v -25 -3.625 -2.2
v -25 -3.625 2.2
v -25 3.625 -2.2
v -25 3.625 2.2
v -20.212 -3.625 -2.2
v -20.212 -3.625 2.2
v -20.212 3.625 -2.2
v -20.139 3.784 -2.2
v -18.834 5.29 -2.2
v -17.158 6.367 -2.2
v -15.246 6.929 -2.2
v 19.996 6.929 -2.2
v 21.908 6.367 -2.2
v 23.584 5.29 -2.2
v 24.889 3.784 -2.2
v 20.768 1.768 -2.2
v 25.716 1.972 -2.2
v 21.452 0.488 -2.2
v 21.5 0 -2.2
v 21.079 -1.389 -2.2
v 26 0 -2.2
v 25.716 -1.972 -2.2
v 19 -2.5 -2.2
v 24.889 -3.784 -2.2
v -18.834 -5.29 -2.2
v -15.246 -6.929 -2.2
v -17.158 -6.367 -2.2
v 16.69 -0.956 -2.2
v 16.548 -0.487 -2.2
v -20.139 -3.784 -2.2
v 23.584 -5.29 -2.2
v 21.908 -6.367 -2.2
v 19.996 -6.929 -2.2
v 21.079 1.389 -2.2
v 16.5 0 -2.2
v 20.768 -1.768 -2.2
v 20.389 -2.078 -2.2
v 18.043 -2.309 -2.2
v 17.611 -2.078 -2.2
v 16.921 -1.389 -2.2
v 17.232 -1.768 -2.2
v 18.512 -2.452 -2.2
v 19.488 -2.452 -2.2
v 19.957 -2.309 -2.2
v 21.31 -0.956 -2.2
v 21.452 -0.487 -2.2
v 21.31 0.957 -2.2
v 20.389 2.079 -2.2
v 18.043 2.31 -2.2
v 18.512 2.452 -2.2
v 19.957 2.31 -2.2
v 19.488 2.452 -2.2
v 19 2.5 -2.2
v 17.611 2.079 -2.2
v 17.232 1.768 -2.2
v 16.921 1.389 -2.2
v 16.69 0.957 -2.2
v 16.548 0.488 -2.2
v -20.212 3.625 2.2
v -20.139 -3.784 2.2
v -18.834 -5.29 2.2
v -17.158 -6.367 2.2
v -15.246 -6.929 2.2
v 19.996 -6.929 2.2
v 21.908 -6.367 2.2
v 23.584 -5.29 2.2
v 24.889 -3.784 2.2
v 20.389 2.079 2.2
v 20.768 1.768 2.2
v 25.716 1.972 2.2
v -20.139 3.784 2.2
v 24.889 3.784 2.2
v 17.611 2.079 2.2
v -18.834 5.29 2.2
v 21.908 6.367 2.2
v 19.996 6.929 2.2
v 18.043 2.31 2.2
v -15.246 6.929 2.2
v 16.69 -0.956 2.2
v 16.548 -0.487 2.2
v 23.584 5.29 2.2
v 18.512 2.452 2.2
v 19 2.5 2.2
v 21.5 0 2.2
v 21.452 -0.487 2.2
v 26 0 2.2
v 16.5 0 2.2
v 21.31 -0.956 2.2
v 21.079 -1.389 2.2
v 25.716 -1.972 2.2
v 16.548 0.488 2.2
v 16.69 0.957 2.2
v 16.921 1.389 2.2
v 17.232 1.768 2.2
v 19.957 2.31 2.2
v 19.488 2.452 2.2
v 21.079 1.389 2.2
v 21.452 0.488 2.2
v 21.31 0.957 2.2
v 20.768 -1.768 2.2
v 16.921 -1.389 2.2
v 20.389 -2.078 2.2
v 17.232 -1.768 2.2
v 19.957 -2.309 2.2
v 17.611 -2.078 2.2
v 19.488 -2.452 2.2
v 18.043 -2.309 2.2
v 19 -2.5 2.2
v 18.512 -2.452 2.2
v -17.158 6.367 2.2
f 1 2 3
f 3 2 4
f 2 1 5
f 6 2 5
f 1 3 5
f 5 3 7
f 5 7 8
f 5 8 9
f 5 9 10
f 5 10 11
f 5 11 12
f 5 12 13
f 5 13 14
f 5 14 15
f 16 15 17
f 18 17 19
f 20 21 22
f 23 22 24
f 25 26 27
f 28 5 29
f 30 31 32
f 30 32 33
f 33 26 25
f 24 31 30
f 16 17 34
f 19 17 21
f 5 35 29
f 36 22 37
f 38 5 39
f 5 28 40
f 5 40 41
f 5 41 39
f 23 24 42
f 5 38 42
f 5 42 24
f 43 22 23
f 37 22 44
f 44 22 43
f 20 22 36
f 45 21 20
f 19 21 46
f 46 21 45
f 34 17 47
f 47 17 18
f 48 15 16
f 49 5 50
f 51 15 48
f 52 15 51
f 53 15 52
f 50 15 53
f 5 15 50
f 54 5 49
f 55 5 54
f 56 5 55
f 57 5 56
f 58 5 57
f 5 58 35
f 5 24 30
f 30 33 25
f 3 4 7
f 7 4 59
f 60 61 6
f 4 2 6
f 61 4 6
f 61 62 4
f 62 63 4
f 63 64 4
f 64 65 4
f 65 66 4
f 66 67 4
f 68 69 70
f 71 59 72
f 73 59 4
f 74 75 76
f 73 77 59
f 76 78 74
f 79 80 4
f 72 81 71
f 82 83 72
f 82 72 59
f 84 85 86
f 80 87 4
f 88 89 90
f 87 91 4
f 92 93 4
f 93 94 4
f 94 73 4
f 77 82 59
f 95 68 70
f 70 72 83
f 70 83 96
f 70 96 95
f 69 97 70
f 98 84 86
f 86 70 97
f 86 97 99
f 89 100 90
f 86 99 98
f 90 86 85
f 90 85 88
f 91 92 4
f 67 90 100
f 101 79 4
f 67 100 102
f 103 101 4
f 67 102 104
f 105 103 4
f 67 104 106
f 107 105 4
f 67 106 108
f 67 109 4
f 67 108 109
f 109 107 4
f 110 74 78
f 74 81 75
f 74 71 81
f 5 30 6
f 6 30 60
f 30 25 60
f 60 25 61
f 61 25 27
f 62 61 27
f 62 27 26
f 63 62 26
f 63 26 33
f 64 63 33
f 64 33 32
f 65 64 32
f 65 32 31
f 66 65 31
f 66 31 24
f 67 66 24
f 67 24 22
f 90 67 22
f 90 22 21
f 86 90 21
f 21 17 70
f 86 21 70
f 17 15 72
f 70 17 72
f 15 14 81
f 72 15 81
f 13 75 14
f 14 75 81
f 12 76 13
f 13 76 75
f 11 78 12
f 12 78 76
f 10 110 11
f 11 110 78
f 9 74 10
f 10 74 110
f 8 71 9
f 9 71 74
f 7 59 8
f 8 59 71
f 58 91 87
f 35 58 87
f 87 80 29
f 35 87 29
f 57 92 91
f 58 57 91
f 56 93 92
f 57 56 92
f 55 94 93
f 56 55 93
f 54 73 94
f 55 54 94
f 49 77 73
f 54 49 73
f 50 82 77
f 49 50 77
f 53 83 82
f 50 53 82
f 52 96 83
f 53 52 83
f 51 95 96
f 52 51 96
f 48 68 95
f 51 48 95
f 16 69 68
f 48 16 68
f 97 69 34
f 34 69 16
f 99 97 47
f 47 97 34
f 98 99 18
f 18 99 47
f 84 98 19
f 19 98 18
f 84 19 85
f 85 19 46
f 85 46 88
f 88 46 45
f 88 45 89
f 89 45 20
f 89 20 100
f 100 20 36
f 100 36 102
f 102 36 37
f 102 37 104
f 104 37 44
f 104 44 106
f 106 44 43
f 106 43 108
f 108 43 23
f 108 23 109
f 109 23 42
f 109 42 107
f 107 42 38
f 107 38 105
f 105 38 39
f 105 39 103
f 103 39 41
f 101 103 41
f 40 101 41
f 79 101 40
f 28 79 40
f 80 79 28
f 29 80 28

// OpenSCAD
// 5 mm round bar

w=50;
h=11.25-4;
d=4.4;
tip=6;
rad=7;

difference() {
	union() {
		translate([-w/4,0,0])
			cube([w/2,h,d],center=true);
		linear_extrude(height=d,center=true) {
			hull() {
				translate([w/2-tip,0,0])
					circle(r=rad);
				translate([-w/2+rad/2+h,0,0])
					circle(r=rad);
			}
		}
			// minkowski() {
			// 	cube([w-6.5,h+4,d-6.5/2],center=true);
			// 	cylinder(r=1,h=d-6.5/2,center=true,$fn=16);
			// }
		// }
	}
	translate([w/2-tip,0,0])
		cylinder(r=2.5,h=12,center=true,$fn=32);
}
